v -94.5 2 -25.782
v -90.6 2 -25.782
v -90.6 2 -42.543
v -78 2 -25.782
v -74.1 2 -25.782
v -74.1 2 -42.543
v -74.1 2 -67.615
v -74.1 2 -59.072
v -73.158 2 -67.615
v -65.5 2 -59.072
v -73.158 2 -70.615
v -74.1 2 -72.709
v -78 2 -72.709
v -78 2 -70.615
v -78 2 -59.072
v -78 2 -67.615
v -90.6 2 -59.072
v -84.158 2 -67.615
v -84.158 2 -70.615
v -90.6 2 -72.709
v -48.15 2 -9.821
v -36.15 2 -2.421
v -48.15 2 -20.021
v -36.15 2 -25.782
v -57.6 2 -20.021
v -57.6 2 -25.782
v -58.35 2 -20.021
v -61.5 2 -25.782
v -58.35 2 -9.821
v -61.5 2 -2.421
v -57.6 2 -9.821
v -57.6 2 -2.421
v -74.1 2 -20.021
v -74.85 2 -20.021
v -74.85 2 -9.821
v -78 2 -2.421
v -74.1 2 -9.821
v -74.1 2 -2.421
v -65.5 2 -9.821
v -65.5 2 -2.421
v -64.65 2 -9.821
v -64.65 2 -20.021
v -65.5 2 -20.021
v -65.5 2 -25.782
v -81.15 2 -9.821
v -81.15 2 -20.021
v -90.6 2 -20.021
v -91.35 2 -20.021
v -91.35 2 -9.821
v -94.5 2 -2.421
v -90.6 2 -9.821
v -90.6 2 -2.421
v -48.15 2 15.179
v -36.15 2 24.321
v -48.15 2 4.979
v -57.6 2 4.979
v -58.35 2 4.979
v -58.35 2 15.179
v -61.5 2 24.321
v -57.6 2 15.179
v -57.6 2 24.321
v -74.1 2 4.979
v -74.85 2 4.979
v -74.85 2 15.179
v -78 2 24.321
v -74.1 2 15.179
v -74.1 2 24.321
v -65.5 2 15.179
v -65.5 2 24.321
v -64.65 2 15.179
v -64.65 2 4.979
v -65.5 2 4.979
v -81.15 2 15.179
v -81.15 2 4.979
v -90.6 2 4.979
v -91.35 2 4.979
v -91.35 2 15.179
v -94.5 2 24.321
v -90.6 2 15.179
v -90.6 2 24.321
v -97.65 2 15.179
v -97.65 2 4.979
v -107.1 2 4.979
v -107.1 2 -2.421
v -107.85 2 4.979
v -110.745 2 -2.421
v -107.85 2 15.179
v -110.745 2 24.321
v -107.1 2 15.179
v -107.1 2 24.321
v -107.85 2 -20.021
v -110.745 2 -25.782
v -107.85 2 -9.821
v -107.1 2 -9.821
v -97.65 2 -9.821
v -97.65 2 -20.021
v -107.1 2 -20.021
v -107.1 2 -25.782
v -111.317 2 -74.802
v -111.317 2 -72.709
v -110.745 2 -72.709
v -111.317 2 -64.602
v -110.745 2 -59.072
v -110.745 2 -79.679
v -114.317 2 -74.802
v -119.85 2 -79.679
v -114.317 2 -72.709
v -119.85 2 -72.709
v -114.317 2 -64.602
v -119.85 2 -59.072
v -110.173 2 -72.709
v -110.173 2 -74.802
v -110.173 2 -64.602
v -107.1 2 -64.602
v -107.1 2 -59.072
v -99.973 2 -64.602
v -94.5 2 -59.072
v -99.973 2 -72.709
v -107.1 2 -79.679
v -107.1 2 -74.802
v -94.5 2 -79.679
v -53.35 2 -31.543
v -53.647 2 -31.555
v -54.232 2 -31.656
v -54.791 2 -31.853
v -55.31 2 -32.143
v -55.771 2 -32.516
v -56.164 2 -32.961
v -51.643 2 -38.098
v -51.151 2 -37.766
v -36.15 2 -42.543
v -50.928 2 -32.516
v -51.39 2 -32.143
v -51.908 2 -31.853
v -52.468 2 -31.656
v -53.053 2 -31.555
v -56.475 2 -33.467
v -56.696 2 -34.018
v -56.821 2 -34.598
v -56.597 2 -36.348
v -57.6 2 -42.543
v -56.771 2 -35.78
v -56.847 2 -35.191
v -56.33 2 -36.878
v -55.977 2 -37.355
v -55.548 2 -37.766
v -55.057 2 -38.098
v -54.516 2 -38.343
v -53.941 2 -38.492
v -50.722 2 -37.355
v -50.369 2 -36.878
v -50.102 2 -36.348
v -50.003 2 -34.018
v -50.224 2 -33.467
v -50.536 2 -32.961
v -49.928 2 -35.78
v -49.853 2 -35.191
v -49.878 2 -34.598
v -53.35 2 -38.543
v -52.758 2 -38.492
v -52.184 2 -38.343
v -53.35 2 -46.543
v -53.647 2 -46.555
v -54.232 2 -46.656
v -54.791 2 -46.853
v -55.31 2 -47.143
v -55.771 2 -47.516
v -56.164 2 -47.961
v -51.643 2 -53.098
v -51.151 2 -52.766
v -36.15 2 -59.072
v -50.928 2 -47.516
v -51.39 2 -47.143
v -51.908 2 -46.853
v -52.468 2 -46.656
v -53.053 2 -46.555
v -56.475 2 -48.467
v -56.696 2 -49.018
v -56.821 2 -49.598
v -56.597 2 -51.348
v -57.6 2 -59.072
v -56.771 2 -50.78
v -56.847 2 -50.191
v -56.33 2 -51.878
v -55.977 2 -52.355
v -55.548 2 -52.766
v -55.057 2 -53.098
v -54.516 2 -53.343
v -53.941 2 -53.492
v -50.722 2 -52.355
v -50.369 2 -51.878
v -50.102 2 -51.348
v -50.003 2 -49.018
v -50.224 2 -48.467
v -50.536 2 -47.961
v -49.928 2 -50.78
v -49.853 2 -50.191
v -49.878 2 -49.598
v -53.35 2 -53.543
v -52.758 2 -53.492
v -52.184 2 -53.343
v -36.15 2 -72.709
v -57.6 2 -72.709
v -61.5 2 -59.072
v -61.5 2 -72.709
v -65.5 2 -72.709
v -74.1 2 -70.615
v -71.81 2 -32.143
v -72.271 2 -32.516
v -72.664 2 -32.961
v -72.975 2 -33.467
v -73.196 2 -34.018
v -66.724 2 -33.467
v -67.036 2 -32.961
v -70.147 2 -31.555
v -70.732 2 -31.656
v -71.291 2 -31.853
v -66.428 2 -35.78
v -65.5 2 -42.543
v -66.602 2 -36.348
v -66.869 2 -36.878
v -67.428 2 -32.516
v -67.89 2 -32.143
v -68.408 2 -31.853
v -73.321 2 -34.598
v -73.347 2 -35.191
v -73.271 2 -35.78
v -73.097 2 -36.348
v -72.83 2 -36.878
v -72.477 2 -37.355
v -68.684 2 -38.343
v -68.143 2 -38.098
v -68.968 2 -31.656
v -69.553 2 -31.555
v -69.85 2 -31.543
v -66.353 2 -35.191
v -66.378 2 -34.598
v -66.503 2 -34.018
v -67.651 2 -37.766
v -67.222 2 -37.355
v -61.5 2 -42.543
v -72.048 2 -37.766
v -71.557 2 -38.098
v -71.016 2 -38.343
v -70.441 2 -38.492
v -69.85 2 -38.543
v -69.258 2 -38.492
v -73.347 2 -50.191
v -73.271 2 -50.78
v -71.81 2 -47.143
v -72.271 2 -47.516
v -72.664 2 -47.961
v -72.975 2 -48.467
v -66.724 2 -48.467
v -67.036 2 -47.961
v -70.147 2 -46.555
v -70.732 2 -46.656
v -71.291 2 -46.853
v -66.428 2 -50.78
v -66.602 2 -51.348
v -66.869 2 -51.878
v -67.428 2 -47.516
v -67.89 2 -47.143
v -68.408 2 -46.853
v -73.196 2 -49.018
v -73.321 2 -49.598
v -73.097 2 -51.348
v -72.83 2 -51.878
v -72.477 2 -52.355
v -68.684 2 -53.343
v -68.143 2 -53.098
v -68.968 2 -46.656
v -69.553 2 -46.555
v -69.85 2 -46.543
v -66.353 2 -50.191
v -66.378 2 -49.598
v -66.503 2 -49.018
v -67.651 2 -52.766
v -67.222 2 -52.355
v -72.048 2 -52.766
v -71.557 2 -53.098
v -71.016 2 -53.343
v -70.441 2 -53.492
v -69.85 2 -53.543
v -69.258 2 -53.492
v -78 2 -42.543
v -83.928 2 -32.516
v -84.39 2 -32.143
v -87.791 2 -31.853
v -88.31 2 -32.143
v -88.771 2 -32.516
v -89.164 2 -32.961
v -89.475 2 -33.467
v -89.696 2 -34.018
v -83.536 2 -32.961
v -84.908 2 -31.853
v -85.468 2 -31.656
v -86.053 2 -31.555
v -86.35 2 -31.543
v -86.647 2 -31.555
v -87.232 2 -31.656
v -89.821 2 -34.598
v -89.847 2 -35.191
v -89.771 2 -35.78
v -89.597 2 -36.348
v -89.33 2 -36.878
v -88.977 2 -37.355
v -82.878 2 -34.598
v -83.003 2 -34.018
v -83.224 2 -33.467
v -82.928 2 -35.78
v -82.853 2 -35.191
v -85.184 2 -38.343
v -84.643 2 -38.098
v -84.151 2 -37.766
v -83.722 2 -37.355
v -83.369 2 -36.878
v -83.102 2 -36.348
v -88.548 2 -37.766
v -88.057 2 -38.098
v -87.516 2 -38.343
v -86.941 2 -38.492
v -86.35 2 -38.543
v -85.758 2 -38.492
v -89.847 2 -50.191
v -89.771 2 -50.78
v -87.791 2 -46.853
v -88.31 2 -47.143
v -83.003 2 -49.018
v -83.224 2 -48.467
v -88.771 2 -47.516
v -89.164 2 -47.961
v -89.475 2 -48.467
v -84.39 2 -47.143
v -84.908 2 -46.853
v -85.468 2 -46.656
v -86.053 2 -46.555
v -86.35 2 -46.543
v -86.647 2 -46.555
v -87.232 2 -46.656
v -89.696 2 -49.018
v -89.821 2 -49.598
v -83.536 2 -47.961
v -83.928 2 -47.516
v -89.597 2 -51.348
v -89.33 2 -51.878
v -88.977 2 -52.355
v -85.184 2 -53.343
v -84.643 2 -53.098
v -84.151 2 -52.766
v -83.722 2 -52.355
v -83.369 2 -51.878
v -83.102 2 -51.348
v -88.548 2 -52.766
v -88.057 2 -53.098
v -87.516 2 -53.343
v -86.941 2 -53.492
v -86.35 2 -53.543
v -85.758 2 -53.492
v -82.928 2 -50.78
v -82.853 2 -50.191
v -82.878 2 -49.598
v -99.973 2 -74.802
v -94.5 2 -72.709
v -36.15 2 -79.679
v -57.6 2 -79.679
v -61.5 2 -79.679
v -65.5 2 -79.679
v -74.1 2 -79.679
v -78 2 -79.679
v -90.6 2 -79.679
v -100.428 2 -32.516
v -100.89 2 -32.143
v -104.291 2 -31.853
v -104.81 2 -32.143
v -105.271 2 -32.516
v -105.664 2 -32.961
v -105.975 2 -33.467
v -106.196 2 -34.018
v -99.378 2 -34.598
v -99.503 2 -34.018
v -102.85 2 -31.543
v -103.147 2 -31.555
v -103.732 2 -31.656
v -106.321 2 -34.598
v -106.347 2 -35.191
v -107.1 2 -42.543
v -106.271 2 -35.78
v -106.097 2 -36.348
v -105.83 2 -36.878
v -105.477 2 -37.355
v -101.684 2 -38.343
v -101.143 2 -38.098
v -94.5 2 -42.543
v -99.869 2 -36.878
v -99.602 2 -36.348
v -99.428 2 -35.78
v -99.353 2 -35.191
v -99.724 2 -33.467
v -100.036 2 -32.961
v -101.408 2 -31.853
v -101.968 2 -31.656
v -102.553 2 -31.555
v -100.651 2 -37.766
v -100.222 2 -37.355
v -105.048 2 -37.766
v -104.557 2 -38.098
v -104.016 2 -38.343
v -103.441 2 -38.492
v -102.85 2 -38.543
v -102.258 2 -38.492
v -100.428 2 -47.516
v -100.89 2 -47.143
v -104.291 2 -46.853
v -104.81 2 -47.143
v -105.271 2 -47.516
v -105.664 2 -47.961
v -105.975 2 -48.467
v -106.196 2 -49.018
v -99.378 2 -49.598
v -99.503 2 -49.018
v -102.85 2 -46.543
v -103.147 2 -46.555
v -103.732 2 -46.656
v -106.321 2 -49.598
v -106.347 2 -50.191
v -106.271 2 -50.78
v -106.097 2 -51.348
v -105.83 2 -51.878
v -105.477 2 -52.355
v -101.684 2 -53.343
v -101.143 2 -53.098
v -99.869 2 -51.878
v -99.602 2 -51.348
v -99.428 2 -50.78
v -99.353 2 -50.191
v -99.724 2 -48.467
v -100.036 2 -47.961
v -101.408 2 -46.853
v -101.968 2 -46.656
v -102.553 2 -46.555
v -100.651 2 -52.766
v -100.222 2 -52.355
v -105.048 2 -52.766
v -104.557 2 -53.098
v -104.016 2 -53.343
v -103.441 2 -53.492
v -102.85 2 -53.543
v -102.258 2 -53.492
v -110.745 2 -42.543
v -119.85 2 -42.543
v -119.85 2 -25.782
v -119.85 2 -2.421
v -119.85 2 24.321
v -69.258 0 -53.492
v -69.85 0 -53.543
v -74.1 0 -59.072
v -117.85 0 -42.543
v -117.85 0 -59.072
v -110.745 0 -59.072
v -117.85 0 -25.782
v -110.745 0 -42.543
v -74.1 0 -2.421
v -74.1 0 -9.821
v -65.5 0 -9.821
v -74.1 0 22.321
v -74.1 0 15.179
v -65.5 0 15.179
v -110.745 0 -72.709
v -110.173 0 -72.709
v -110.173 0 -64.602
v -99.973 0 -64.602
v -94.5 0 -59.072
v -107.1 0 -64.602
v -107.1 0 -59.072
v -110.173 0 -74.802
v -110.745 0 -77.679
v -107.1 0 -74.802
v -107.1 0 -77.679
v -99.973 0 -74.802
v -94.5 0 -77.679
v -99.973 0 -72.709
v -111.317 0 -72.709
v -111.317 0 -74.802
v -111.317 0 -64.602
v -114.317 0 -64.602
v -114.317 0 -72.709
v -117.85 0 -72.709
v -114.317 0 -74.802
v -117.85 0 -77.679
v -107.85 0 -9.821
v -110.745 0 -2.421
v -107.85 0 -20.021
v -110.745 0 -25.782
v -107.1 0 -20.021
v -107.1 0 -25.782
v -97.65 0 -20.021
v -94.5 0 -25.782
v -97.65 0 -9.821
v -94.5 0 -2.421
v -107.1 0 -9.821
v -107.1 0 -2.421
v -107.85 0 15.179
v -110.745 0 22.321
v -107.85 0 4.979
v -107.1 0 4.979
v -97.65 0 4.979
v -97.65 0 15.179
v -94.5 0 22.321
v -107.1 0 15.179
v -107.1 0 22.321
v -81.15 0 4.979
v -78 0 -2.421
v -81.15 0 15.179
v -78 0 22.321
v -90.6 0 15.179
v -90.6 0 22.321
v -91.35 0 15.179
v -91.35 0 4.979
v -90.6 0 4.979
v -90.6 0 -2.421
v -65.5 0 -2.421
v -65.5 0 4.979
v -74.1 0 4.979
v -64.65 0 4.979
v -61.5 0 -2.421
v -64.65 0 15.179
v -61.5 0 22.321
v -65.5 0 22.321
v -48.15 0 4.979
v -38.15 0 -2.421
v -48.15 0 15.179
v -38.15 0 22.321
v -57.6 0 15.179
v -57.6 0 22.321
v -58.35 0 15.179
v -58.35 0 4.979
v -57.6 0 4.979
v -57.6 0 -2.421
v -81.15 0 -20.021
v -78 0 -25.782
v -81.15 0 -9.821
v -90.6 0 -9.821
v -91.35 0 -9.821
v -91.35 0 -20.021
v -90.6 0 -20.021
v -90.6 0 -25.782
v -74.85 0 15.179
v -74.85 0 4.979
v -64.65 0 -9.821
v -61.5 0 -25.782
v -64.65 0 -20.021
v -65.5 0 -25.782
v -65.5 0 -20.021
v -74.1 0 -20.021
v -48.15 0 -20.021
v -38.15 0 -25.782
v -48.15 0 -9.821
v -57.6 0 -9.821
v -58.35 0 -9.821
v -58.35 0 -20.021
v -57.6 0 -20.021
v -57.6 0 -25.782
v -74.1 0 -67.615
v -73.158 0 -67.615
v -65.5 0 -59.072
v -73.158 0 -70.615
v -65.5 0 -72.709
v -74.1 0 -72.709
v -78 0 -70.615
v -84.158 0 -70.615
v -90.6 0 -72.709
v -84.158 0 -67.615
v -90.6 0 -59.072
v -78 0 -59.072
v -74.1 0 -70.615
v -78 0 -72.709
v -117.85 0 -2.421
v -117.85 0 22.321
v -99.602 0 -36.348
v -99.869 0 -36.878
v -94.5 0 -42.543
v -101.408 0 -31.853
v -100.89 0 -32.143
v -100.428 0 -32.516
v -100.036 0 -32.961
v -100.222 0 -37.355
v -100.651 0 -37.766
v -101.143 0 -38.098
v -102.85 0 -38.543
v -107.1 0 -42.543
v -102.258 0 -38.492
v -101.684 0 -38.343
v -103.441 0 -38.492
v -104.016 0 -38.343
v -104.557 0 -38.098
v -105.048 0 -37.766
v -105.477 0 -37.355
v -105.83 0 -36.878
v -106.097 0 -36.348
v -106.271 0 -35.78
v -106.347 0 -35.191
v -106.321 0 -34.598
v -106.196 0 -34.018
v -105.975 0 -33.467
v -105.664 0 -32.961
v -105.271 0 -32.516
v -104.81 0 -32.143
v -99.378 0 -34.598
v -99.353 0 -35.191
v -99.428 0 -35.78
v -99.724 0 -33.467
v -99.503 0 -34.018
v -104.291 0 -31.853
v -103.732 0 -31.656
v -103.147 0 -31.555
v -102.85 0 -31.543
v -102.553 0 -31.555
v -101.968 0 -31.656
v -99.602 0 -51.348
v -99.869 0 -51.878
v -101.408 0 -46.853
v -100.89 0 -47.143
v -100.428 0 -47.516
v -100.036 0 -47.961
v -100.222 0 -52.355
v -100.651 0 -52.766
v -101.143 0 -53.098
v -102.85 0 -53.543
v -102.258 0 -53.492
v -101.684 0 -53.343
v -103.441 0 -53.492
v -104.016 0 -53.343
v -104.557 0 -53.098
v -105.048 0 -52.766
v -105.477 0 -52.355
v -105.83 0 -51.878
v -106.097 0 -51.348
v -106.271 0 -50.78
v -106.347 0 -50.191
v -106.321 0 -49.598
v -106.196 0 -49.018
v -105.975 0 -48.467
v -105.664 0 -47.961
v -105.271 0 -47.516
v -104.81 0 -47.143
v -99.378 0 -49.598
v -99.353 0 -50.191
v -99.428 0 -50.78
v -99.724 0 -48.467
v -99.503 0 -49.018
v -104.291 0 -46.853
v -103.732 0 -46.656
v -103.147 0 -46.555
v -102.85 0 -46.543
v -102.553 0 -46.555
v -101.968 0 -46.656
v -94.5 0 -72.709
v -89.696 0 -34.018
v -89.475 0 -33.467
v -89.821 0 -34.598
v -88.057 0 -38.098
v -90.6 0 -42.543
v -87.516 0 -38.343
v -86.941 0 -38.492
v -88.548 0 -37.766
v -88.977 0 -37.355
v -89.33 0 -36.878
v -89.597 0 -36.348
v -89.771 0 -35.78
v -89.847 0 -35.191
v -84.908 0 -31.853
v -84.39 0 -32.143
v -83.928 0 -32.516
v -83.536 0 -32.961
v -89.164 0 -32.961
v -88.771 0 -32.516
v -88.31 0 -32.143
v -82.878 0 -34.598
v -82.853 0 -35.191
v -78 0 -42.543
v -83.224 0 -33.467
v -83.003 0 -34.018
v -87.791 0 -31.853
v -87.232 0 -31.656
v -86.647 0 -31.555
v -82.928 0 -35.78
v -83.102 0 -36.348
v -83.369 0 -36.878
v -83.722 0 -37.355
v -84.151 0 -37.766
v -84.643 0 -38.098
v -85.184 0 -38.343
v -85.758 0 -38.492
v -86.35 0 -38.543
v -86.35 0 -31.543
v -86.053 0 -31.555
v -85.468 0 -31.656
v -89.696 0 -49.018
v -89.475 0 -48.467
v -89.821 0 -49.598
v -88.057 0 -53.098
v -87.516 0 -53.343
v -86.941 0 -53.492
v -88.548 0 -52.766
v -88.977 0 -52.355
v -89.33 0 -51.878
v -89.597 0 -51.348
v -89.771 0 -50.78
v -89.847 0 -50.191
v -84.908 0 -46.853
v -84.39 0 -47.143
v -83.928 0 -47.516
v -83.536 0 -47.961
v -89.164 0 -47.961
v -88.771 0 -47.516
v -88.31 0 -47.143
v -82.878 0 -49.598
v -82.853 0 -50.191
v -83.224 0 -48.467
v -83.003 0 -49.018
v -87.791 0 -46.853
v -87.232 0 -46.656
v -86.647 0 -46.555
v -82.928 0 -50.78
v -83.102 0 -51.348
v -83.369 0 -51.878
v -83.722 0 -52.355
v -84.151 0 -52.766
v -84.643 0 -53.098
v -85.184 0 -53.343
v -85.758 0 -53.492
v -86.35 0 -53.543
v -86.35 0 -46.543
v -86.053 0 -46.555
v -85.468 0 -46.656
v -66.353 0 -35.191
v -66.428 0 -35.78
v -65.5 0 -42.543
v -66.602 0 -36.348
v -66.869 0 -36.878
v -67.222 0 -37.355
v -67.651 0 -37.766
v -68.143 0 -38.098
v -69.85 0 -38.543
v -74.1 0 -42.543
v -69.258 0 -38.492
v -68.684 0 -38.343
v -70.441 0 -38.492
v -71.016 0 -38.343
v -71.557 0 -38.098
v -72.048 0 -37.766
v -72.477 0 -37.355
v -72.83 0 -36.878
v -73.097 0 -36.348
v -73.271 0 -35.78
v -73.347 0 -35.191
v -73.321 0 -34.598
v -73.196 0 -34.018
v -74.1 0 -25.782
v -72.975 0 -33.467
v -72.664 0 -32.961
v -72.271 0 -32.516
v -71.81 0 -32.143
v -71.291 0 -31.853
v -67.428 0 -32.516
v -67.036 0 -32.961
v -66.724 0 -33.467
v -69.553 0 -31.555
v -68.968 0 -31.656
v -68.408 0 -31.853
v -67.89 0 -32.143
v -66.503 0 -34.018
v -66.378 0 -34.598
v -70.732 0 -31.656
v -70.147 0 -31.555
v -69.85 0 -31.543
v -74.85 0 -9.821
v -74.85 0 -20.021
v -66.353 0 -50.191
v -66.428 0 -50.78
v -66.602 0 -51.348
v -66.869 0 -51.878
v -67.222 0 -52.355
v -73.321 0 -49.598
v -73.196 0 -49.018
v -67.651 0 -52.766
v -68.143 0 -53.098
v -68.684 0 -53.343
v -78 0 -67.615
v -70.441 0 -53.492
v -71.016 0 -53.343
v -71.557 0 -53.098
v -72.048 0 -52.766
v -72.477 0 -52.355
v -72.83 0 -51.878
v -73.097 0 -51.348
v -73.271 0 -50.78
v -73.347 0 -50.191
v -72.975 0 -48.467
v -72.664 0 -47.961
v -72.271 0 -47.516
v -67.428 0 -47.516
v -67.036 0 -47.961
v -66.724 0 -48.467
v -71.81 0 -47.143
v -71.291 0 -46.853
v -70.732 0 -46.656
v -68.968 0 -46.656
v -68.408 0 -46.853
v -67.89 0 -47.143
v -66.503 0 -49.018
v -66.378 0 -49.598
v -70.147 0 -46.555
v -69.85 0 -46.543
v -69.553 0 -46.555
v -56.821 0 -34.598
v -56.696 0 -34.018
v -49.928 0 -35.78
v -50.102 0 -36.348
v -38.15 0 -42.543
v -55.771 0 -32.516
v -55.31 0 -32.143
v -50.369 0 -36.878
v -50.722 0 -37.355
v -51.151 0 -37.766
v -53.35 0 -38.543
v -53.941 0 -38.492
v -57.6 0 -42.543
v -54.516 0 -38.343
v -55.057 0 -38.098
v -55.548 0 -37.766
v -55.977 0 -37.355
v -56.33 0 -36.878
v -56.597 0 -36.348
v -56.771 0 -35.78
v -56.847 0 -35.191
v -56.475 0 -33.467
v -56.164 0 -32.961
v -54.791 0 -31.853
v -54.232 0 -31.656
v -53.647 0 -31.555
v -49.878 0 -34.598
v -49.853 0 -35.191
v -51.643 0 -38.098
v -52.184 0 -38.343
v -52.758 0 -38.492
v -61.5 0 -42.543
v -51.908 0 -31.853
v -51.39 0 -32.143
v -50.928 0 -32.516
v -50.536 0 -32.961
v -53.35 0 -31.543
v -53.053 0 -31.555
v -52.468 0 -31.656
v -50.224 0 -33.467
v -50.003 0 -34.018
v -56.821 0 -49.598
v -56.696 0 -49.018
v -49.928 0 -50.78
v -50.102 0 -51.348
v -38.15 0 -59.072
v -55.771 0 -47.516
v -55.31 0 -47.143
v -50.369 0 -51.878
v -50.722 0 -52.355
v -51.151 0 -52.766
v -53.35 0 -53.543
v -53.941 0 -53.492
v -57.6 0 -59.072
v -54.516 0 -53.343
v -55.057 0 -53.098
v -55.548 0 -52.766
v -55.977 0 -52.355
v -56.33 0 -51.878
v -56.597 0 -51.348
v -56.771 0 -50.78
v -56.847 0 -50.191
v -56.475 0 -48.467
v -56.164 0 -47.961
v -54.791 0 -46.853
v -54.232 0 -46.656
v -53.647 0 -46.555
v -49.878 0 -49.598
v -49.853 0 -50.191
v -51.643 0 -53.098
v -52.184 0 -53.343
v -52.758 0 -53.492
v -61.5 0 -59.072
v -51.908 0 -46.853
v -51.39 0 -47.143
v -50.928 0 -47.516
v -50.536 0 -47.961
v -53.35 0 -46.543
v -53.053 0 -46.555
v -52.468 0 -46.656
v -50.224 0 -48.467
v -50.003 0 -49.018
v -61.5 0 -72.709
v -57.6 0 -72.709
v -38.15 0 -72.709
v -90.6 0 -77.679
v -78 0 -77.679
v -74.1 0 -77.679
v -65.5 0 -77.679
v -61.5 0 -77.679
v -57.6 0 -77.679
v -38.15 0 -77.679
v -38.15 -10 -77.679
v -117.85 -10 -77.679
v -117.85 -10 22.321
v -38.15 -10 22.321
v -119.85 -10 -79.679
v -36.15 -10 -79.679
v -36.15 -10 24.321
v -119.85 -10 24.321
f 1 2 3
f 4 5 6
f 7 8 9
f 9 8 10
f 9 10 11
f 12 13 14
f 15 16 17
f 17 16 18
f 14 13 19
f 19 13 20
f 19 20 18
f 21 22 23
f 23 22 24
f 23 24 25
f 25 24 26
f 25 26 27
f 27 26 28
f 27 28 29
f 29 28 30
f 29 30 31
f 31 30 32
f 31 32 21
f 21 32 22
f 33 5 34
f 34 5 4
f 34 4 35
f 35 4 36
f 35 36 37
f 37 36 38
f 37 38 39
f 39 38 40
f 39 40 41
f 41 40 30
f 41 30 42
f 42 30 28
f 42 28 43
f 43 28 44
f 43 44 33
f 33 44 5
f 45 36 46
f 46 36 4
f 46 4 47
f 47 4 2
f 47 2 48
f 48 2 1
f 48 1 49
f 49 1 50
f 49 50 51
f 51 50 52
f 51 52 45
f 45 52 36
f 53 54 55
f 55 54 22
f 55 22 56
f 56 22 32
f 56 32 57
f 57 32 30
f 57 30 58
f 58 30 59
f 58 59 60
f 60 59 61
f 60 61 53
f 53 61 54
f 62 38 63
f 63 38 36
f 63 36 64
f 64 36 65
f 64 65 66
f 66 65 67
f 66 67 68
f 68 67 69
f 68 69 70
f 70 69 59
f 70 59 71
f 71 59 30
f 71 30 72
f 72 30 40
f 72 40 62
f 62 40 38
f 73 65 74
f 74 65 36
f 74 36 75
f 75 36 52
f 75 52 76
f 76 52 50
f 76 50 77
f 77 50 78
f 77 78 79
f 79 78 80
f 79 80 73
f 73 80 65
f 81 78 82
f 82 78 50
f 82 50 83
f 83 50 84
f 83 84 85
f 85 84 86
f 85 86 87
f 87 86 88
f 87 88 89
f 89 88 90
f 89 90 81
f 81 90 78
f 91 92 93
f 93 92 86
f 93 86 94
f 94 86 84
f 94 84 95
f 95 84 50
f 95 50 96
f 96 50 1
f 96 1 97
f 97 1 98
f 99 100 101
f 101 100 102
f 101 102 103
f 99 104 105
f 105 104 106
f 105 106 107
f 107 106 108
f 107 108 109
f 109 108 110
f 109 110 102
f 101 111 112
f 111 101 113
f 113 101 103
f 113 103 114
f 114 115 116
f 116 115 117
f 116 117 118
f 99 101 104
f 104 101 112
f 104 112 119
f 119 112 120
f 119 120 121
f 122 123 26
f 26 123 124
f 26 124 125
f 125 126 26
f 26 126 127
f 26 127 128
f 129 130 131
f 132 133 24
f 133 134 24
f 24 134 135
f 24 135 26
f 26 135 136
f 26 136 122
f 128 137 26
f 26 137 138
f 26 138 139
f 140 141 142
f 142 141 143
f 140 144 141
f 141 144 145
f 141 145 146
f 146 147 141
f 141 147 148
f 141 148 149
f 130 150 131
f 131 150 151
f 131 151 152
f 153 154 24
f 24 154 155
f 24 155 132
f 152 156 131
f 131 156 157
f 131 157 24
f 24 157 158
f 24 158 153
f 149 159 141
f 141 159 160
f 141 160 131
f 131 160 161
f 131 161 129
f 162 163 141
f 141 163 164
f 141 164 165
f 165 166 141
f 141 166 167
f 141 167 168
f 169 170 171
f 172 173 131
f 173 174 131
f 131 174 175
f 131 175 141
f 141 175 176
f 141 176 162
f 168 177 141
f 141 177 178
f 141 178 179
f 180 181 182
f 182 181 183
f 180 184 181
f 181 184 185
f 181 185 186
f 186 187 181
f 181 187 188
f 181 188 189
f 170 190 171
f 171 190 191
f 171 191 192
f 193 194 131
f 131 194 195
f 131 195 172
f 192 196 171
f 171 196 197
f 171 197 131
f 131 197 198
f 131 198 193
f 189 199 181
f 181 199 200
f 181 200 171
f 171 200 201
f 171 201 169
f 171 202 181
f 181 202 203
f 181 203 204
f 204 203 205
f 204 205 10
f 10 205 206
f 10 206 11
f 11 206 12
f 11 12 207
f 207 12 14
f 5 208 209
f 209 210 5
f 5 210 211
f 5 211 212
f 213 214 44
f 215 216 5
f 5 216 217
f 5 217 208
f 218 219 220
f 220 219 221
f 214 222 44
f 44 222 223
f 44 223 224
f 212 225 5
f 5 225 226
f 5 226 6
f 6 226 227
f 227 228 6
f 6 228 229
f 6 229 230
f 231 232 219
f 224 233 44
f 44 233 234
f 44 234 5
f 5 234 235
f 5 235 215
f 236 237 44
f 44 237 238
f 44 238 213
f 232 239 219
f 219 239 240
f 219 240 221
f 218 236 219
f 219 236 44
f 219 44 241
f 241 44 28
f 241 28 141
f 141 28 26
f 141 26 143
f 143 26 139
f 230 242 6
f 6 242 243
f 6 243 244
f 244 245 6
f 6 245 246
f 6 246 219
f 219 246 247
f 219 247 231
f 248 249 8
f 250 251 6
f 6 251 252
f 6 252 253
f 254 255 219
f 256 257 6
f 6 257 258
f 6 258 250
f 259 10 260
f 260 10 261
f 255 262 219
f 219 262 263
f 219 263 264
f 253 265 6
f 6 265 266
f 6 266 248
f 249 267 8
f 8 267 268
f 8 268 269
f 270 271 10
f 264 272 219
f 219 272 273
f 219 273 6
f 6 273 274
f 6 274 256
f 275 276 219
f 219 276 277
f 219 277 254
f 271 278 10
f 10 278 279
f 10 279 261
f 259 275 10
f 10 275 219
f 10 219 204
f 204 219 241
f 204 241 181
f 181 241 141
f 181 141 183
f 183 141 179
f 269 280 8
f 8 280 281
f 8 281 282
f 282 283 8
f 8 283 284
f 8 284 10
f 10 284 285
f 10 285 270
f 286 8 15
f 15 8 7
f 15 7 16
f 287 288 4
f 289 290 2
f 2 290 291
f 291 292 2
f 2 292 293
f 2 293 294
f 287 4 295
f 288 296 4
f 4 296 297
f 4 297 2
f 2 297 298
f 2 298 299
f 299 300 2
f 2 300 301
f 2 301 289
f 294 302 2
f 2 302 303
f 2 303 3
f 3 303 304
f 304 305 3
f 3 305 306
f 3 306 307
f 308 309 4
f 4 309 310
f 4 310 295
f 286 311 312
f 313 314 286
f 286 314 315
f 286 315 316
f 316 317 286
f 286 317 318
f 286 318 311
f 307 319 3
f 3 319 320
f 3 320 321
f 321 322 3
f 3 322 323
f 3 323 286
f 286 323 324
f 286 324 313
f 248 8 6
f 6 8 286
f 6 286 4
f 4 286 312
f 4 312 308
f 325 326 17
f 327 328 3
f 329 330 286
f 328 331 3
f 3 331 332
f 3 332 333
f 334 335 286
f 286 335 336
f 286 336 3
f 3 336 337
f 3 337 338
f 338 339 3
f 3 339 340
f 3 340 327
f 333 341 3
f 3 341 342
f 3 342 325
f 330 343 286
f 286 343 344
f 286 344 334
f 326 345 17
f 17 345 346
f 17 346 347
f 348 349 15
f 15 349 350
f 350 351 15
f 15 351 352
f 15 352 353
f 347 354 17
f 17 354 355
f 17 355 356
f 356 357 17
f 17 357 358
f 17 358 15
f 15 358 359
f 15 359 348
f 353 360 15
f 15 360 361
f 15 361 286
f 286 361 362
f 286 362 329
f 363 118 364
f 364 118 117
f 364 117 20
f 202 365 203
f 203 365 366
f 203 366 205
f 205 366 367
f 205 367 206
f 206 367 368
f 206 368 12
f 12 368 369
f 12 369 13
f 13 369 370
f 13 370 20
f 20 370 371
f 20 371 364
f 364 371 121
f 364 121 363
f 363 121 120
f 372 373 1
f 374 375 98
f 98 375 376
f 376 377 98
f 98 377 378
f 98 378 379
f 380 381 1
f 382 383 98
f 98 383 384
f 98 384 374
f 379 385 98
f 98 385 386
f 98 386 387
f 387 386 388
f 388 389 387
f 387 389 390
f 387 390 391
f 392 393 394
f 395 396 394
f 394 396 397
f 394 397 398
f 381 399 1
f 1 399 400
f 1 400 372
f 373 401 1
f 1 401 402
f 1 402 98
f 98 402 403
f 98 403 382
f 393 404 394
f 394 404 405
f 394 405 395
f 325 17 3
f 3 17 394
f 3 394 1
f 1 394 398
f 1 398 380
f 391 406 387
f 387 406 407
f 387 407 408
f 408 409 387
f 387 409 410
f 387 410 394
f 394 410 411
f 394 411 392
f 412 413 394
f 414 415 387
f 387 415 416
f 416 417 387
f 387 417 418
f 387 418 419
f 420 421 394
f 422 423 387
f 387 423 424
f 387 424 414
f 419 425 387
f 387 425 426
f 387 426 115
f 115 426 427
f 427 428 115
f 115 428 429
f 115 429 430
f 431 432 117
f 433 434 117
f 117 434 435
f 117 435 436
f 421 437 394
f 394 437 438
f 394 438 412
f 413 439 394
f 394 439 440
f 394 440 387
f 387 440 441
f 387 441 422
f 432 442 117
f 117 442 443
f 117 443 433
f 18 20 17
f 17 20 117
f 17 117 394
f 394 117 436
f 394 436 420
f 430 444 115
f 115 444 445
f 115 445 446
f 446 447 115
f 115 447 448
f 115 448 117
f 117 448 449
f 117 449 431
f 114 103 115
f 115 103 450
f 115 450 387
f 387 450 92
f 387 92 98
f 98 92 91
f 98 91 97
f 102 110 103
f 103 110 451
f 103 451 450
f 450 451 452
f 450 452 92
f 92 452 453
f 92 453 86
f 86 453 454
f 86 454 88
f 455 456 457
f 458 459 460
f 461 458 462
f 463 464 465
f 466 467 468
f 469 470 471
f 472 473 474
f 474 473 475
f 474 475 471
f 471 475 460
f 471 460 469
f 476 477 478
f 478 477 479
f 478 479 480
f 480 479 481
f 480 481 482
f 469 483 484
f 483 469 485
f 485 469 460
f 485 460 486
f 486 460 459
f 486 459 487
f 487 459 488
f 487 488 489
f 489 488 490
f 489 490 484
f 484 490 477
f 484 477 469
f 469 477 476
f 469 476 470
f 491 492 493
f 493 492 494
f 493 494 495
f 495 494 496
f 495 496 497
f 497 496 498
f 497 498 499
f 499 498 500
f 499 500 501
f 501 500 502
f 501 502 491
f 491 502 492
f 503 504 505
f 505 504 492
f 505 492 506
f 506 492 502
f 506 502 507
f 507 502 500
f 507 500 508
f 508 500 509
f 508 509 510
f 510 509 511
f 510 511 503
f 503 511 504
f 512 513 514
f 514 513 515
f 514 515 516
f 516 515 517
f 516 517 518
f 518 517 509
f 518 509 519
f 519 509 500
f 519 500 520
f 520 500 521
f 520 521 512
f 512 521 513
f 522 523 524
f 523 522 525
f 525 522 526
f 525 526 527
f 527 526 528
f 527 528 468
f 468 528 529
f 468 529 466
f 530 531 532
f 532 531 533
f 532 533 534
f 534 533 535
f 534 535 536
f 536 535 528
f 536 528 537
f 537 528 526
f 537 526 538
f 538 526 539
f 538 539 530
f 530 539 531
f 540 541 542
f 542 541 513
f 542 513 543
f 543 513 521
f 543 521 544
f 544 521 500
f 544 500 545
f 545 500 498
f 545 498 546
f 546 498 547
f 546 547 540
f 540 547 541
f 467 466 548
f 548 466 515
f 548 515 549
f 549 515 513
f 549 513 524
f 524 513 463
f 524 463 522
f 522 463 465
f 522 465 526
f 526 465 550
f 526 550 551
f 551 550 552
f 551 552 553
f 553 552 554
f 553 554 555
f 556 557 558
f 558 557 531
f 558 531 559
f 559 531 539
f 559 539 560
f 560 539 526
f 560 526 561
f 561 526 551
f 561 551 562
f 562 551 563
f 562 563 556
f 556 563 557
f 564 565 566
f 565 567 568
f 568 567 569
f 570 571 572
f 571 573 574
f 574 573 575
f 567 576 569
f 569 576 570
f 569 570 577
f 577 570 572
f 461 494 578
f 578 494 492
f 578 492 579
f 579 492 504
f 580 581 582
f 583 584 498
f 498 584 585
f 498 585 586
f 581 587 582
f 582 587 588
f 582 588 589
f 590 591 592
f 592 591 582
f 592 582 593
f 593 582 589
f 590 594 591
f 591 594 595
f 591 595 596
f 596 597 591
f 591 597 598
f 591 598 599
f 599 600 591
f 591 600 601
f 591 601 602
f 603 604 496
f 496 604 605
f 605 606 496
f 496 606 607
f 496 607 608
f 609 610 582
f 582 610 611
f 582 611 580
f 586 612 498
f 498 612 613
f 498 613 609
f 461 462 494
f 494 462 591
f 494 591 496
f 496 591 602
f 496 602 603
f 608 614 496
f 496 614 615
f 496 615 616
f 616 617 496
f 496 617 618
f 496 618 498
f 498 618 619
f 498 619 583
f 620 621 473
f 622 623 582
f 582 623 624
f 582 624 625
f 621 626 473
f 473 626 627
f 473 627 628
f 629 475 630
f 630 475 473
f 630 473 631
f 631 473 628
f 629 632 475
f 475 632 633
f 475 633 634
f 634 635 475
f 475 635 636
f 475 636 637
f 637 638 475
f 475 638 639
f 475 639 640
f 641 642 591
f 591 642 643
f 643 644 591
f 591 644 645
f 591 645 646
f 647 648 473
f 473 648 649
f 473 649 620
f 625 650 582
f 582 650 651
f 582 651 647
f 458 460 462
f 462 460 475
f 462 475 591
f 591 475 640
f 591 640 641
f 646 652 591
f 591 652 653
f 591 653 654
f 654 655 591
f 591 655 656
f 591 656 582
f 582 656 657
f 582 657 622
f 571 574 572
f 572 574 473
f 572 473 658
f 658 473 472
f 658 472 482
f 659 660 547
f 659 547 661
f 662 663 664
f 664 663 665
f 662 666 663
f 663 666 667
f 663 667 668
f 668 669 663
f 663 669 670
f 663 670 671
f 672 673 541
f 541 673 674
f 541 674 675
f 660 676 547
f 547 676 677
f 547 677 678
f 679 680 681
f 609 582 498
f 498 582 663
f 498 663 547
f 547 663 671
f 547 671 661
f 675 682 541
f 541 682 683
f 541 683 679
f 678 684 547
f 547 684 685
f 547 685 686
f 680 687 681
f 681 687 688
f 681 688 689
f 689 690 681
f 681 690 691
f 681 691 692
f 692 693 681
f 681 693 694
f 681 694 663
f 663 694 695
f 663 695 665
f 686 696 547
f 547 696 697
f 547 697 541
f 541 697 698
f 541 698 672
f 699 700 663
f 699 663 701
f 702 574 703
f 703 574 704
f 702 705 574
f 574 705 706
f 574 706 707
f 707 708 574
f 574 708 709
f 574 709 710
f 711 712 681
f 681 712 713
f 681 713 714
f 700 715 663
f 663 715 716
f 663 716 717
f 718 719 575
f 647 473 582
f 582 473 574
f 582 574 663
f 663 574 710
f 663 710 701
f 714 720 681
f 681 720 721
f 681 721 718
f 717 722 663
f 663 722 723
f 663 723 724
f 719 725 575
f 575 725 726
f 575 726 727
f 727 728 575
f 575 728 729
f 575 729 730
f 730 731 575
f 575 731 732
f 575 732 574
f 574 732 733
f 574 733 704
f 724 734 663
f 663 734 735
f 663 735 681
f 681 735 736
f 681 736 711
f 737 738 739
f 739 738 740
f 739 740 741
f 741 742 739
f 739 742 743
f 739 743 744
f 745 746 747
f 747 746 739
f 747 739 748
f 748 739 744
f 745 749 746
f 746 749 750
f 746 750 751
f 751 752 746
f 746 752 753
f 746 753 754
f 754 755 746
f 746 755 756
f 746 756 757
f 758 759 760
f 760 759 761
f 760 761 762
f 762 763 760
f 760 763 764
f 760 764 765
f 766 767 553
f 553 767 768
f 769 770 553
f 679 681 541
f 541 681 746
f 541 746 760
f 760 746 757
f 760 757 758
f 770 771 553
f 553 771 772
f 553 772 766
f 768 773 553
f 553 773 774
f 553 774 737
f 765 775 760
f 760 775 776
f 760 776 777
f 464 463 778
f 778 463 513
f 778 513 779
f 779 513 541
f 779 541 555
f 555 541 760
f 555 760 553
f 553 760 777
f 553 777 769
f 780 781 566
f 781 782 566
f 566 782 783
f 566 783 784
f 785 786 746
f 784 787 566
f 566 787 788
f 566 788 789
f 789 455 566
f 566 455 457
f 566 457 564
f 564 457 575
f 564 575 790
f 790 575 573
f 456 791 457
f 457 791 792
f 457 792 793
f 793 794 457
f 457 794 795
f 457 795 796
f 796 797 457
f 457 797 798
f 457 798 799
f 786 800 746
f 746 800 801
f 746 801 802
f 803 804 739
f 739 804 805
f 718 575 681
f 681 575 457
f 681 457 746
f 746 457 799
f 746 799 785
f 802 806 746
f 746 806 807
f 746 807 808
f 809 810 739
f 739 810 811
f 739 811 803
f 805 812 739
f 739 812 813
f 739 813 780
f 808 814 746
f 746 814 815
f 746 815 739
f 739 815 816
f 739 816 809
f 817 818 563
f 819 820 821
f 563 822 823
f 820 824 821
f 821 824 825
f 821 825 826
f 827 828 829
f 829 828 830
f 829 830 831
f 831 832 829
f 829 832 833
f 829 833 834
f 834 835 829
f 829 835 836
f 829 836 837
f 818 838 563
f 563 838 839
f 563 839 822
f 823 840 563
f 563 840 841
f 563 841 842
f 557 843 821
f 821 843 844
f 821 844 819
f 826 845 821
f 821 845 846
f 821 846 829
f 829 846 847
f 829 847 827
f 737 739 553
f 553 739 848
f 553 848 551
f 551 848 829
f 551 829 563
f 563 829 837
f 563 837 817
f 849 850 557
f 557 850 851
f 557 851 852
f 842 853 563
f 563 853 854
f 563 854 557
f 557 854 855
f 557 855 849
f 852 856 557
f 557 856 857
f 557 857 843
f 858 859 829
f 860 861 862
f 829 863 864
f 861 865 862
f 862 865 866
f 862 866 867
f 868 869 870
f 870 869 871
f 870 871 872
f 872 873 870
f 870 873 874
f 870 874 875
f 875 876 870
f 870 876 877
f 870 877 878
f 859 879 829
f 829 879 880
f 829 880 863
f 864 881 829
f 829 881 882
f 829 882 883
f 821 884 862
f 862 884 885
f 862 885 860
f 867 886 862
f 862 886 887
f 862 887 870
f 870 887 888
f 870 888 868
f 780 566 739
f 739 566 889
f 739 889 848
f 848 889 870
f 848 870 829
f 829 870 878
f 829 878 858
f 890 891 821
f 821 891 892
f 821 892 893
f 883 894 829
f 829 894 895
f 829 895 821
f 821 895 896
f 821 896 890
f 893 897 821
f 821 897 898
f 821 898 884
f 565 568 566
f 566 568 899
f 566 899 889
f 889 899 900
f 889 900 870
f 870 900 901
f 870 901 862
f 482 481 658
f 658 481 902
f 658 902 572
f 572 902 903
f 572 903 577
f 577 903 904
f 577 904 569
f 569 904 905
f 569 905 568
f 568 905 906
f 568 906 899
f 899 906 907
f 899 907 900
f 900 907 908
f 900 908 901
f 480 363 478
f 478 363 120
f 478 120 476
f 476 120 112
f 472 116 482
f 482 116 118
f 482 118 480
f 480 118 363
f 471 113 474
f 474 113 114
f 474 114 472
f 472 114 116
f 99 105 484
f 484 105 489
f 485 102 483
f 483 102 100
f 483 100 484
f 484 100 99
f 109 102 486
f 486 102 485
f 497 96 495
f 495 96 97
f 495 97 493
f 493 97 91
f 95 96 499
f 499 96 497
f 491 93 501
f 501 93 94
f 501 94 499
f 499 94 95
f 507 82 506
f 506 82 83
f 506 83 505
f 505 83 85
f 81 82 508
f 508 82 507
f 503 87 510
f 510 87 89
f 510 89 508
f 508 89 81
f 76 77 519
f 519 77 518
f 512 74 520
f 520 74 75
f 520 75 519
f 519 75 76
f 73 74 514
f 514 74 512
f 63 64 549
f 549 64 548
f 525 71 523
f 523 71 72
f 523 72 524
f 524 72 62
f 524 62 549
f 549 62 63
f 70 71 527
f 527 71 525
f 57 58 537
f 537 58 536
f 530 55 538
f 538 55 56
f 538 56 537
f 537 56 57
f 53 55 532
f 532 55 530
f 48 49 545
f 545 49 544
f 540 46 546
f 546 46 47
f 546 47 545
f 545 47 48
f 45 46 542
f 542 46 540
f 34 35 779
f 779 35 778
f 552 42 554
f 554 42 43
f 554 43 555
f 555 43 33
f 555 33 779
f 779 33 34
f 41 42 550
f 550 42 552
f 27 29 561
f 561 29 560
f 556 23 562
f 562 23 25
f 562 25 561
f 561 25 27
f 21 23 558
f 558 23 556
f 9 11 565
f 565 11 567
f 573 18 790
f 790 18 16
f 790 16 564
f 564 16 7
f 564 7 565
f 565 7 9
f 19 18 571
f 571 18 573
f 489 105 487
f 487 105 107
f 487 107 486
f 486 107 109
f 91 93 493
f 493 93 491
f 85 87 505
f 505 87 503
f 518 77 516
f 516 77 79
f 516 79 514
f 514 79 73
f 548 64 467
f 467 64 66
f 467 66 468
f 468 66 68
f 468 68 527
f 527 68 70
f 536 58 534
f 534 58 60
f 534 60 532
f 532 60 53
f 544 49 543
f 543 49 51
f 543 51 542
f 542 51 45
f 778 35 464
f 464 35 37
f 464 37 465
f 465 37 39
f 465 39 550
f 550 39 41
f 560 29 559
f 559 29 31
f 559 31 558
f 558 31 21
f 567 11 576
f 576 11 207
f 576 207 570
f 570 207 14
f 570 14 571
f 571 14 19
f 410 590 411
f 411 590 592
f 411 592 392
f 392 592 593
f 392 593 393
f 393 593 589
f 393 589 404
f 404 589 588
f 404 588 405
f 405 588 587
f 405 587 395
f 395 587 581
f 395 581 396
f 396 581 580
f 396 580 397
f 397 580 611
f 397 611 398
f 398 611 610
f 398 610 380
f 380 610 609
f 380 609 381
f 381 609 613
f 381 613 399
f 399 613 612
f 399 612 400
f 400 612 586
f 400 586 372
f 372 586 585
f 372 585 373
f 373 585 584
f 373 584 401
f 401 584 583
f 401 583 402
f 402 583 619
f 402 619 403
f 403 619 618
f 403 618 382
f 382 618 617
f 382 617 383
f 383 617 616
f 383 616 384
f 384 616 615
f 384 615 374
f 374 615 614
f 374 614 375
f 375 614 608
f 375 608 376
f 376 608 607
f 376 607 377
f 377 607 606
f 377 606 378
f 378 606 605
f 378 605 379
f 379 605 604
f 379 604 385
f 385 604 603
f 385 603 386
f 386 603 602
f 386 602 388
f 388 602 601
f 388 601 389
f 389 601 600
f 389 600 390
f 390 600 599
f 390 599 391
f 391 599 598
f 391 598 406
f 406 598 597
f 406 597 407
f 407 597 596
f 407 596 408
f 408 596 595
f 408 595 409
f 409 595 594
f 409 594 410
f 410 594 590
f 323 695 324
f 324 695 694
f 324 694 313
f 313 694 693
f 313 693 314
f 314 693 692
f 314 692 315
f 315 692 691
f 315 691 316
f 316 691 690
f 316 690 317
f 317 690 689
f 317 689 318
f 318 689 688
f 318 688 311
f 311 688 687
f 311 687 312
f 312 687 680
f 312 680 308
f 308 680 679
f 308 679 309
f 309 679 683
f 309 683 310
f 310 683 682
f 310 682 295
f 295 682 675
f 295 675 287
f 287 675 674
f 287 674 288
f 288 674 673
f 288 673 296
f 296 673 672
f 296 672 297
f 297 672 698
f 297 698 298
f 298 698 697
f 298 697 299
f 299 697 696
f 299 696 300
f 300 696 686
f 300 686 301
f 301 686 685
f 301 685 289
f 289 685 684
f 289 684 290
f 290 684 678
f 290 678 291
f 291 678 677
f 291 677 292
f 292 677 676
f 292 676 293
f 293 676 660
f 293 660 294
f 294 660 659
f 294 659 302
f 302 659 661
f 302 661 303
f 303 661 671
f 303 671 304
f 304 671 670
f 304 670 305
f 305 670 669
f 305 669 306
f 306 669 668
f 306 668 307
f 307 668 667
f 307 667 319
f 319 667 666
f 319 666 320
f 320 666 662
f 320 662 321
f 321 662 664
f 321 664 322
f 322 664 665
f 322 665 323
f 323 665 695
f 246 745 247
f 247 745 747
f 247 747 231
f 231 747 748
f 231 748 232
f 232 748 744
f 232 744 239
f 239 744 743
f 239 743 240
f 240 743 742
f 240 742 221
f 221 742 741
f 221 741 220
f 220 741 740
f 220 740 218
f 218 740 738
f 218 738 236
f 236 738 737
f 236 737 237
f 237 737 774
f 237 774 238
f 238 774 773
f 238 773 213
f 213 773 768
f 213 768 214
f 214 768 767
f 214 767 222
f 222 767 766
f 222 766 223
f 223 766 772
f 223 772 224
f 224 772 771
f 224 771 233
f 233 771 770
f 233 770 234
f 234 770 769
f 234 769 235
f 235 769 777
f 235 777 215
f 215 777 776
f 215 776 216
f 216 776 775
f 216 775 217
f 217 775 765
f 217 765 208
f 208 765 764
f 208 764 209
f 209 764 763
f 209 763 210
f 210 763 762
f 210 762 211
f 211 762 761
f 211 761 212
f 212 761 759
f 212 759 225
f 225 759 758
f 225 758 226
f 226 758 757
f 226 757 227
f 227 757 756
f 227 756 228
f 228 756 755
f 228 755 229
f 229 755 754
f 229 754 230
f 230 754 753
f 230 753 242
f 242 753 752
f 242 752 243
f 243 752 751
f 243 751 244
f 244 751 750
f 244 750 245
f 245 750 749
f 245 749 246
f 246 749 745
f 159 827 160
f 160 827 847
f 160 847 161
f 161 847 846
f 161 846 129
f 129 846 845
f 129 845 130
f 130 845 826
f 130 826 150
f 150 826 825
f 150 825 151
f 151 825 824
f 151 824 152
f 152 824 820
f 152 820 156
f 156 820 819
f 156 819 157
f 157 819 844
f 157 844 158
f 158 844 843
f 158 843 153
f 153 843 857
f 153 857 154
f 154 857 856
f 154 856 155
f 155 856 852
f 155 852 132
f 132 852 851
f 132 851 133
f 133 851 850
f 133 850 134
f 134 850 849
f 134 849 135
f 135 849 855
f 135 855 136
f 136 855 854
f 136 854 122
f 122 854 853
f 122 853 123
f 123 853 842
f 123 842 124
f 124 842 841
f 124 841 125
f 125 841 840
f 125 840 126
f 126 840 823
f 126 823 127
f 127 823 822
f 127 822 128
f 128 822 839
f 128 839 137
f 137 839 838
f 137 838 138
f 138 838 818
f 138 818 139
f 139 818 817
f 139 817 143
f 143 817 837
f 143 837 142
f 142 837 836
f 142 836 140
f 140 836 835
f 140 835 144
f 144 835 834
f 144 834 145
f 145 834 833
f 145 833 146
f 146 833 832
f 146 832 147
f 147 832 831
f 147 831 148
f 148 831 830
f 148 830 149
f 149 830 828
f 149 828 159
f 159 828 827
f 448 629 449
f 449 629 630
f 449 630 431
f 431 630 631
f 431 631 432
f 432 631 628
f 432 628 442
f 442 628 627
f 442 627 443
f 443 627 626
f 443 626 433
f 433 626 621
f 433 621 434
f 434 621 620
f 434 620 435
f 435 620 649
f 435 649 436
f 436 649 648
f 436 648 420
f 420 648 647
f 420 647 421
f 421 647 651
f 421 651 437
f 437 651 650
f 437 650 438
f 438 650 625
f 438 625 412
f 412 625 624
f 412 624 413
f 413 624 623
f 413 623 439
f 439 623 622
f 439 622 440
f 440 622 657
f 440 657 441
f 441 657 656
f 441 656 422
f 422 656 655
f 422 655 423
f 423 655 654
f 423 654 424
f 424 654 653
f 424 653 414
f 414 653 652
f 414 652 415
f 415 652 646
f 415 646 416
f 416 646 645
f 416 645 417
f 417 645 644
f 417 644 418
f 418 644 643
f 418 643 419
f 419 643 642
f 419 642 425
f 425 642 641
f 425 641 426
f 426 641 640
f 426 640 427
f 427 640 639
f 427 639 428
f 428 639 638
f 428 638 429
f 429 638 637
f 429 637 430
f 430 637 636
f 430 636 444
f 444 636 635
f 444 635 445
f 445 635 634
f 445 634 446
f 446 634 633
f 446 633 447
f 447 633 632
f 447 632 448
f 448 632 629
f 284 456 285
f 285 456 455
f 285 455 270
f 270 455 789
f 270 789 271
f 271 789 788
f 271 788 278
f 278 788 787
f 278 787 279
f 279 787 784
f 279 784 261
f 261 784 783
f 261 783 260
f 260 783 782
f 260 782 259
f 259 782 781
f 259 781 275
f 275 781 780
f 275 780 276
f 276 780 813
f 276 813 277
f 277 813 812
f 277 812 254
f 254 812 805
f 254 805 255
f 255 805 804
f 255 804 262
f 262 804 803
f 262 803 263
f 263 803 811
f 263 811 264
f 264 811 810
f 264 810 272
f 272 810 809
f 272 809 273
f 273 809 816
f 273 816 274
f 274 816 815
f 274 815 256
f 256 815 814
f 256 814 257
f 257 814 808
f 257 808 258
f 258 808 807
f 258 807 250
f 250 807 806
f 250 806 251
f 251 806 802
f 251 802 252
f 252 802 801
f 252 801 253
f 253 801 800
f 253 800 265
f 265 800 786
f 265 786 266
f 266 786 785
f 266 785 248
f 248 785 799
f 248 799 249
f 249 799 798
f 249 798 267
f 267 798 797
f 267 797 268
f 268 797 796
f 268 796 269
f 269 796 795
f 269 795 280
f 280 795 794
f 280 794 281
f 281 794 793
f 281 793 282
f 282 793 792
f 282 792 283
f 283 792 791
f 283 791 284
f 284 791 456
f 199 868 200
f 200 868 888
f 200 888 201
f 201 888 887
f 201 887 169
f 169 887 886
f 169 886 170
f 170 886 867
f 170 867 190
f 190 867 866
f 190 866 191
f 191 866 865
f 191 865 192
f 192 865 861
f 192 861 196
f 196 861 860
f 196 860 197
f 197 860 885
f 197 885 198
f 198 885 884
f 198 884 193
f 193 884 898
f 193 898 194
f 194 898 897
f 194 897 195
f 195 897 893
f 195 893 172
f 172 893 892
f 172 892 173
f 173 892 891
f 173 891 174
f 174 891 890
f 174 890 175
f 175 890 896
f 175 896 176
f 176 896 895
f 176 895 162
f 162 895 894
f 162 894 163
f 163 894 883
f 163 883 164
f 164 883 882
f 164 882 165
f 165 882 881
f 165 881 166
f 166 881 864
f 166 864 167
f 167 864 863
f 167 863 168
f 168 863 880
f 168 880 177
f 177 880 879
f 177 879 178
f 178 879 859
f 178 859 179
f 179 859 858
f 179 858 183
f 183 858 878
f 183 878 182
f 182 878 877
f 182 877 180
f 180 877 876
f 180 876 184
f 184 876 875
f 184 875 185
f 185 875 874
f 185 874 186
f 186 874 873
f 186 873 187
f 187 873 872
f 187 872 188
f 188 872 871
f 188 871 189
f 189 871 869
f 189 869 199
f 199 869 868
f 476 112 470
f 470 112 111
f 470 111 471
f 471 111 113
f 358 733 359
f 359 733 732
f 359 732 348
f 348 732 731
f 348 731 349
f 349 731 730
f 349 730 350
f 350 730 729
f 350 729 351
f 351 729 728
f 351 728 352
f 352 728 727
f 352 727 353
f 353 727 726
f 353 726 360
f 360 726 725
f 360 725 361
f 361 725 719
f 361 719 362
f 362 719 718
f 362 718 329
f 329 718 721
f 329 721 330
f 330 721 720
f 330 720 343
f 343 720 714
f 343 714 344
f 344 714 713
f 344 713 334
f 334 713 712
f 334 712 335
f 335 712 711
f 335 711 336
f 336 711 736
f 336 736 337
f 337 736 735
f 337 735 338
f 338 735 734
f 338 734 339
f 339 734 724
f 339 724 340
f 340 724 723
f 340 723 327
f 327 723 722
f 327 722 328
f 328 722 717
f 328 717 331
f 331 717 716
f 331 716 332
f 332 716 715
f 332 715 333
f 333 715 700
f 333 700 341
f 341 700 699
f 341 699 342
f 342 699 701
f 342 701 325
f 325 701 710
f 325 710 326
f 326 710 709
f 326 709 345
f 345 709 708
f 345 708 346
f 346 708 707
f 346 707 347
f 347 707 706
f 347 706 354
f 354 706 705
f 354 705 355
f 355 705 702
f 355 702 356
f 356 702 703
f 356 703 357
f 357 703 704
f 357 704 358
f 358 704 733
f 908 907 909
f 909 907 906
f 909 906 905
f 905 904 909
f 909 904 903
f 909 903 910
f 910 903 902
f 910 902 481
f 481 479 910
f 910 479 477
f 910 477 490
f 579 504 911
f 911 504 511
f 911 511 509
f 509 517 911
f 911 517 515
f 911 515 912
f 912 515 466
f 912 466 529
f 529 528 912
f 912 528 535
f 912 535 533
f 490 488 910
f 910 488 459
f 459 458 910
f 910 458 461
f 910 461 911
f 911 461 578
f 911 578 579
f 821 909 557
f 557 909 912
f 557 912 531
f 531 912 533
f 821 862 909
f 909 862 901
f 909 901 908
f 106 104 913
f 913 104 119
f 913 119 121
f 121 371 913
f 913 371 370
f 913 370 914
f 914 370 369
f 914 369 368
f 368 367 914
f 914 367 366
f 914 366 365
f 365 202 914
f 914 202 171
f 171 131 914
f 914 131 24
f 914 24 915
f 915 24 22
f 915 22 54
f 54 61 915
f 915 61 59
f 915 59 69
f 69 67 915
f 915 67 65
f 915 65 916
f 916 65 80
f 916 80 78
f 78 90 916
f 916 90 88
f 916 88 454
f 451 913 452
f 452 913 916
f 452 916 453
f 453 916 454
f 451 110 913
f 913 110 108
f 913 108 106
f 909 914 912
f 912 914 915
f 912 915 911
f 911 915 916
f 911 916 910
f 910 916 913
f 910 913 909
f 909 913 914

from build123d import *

# Parameters (mm, degrees)
SKETCH1_W                = 79.7
SKETCH1_H                = 100
SKETCH1_R                = 3.5
SKETCH1_W_2              = 10.2
SKETCH1_H_2              = 10.2
SKETCH1_W_3              = 11
SKETCH1_H_3              = 3
SKETCH1_W_4              = 3
BOSS_EXTRUDE1_DEPTH      = 2
BOSS_EXTRUDE2_DEPTH      = 2
BOSS_EXTRUDE2_DEPTH_BACK = 10
SKETCH1_3_W              = 83.7
SKETCH1_3_H              = 104
SKETCH1_3_W_2            = 79.7
SKETCH1_3_H_2            = 100


with BuildPart() as part:
    # Sketch1 → Boss-Extrude1 (new body)
    with BuildSketch(Plane(origin=(0, 0, 0), x_dir=(1, 0, 0), z_dir=(0, 1, 0))):
        with Locations((-77.999694214, 27.678571429)):
            Rectangle(SKETCH1_W, SKETCH1_H)
        with Locations(Location((-102.849694214, 35.042631833, 0), (0, 0, 270))):
            Circle(SKETCH1_R, mode=Mode.SUBTRACT)
        with Locations(Location((-86.349694214, 35.042631833, 0), (0, 0, 270))):
            Circle(SKETCH1_R, mode=Mode.SUBTRACT)
        with Locations(Location((-69.849694214, 35.042631833, 0), (0, 0, 270))):
            Circle(SKETCH1_R, mode=Mode.SUBTRACT)
        with Locations(Location((-53.349694214, 35.042631833, 0), (0, 0, 270))):
            Circle(SKETCH1_R, mode=Mode.SUBTRACT)
        with Locations(Location((-102.849694214, 50.042631833, 0), (0, 0, 270))):
            Circle(SKETCH1_R, mode=Mode.SUBTRACT)
        with Locations(Location((-86.349694214, 50.042631833, 0), (0, 0, 270))):
            Circle(SKETCH1_R, mode=Mode.SUBTRACT)
        with Locations(Location((-69.849694214, 50.042631833, 0), (0, 0, 270))):
            Circle(SKETCH1_R, mode=Mode.SUBTRACT)
        with Locations(Location((-53.349694214, 50.042631833, 0), (0, 0, 270))):
            Circle(SKETCH1_R, mode=Mode.SUBTRACT)
        with Locations((-86.249694214, -10.078571429)):
            Rectangle(SKETCH1_W_2, SKETCH1_H_2, mode=Mode.SUBTRACT)
        with Locations((-102.749694214, -10.078571429)):
            Rectangle(SKETCH1_W_2, SKETCH1_H_2, mode=Mode.SUBTRACT)
        with Locations((-69.749694214, -10.078571429)):
            Rectangle(SKETCH1_W_2, SKETCH1_H_2, mode=Mode.SUBTRACT)
        with Locations((-53.249694214, -10.078571429)):
            Rectangle(SKETCH1_W_2, SKETCH1_H_2, mode=Mode.SUBTRACT)
        with Locations((-86.249694214, 14.921428571)):
            Rectangle(SKETCH1_W_2, SKETCH1_H_2, mode=Mode.SUBTRACT)
        with Locations((-102.749694214, 14.921428571)):
            Rectangle(SKETCH1_W_2, SKETCH1_H_2, mode=Mode.SUBTRACT)
        with Locations((-69.749694214, 14.921428571)):
            Rectangle(SKETCH1_W_2, SKETCH1_H_2, mode=Mode.SUBTRACT)
        with Locations((-53.249694214, 14.921428571)):
            Rectangle(SKETCH1_W_2, SKETCH1_H_2, mode=Mode.SUBTRACT)
        with Locations((-78.657921682, 69.115214956)):
            Rectangle(SKETCH1_W_3, SKETCH1_H_3, mode=Mode.SUBTRACT)
        with Locations((-112.817389032, 69.702349137)):
            Rectangle(SKETCH1_W_4, SKETCH1_H_2, mode=Mode.SUBTRACT)
        with Locations((-105.072966437, 69.702349137)):
            Rectangle(SKETCH1_W_2, SKETCH1_H_2, mode=Mode.SUBTRACT)
    extrude(amount=BOSS_EXTRUDE1_DEPTH)

    # Sketch1<3> → Boss-Extrude2 (add, two sides: drawn at the far end of the back side and taken through both)
    with BuildSketch(Plane(origin=(0, 0, 0), x_dir=(1, 0, 0), z_dir=(0, 1, 0)).offset(-BOSS_EXTRUDE2_DEPTH_BACK)):
        with Locations((-77.999694214, 27.678571429)):
            Rectangle(SKETCH1_3_W, SKETCH1_3_H)
        with Locations((-77.999694214, 27.678571429)):
            Rectangle(SKETCH1_3_W_2, SKETCH1_3_H_2, mode=Mode.SUBTRACT)
    extrude(amount=BOSS_EXTRUDE2_DEPTH + BOSS_EXTRUDE2_DEPTH_BACK)


solid = part.part
